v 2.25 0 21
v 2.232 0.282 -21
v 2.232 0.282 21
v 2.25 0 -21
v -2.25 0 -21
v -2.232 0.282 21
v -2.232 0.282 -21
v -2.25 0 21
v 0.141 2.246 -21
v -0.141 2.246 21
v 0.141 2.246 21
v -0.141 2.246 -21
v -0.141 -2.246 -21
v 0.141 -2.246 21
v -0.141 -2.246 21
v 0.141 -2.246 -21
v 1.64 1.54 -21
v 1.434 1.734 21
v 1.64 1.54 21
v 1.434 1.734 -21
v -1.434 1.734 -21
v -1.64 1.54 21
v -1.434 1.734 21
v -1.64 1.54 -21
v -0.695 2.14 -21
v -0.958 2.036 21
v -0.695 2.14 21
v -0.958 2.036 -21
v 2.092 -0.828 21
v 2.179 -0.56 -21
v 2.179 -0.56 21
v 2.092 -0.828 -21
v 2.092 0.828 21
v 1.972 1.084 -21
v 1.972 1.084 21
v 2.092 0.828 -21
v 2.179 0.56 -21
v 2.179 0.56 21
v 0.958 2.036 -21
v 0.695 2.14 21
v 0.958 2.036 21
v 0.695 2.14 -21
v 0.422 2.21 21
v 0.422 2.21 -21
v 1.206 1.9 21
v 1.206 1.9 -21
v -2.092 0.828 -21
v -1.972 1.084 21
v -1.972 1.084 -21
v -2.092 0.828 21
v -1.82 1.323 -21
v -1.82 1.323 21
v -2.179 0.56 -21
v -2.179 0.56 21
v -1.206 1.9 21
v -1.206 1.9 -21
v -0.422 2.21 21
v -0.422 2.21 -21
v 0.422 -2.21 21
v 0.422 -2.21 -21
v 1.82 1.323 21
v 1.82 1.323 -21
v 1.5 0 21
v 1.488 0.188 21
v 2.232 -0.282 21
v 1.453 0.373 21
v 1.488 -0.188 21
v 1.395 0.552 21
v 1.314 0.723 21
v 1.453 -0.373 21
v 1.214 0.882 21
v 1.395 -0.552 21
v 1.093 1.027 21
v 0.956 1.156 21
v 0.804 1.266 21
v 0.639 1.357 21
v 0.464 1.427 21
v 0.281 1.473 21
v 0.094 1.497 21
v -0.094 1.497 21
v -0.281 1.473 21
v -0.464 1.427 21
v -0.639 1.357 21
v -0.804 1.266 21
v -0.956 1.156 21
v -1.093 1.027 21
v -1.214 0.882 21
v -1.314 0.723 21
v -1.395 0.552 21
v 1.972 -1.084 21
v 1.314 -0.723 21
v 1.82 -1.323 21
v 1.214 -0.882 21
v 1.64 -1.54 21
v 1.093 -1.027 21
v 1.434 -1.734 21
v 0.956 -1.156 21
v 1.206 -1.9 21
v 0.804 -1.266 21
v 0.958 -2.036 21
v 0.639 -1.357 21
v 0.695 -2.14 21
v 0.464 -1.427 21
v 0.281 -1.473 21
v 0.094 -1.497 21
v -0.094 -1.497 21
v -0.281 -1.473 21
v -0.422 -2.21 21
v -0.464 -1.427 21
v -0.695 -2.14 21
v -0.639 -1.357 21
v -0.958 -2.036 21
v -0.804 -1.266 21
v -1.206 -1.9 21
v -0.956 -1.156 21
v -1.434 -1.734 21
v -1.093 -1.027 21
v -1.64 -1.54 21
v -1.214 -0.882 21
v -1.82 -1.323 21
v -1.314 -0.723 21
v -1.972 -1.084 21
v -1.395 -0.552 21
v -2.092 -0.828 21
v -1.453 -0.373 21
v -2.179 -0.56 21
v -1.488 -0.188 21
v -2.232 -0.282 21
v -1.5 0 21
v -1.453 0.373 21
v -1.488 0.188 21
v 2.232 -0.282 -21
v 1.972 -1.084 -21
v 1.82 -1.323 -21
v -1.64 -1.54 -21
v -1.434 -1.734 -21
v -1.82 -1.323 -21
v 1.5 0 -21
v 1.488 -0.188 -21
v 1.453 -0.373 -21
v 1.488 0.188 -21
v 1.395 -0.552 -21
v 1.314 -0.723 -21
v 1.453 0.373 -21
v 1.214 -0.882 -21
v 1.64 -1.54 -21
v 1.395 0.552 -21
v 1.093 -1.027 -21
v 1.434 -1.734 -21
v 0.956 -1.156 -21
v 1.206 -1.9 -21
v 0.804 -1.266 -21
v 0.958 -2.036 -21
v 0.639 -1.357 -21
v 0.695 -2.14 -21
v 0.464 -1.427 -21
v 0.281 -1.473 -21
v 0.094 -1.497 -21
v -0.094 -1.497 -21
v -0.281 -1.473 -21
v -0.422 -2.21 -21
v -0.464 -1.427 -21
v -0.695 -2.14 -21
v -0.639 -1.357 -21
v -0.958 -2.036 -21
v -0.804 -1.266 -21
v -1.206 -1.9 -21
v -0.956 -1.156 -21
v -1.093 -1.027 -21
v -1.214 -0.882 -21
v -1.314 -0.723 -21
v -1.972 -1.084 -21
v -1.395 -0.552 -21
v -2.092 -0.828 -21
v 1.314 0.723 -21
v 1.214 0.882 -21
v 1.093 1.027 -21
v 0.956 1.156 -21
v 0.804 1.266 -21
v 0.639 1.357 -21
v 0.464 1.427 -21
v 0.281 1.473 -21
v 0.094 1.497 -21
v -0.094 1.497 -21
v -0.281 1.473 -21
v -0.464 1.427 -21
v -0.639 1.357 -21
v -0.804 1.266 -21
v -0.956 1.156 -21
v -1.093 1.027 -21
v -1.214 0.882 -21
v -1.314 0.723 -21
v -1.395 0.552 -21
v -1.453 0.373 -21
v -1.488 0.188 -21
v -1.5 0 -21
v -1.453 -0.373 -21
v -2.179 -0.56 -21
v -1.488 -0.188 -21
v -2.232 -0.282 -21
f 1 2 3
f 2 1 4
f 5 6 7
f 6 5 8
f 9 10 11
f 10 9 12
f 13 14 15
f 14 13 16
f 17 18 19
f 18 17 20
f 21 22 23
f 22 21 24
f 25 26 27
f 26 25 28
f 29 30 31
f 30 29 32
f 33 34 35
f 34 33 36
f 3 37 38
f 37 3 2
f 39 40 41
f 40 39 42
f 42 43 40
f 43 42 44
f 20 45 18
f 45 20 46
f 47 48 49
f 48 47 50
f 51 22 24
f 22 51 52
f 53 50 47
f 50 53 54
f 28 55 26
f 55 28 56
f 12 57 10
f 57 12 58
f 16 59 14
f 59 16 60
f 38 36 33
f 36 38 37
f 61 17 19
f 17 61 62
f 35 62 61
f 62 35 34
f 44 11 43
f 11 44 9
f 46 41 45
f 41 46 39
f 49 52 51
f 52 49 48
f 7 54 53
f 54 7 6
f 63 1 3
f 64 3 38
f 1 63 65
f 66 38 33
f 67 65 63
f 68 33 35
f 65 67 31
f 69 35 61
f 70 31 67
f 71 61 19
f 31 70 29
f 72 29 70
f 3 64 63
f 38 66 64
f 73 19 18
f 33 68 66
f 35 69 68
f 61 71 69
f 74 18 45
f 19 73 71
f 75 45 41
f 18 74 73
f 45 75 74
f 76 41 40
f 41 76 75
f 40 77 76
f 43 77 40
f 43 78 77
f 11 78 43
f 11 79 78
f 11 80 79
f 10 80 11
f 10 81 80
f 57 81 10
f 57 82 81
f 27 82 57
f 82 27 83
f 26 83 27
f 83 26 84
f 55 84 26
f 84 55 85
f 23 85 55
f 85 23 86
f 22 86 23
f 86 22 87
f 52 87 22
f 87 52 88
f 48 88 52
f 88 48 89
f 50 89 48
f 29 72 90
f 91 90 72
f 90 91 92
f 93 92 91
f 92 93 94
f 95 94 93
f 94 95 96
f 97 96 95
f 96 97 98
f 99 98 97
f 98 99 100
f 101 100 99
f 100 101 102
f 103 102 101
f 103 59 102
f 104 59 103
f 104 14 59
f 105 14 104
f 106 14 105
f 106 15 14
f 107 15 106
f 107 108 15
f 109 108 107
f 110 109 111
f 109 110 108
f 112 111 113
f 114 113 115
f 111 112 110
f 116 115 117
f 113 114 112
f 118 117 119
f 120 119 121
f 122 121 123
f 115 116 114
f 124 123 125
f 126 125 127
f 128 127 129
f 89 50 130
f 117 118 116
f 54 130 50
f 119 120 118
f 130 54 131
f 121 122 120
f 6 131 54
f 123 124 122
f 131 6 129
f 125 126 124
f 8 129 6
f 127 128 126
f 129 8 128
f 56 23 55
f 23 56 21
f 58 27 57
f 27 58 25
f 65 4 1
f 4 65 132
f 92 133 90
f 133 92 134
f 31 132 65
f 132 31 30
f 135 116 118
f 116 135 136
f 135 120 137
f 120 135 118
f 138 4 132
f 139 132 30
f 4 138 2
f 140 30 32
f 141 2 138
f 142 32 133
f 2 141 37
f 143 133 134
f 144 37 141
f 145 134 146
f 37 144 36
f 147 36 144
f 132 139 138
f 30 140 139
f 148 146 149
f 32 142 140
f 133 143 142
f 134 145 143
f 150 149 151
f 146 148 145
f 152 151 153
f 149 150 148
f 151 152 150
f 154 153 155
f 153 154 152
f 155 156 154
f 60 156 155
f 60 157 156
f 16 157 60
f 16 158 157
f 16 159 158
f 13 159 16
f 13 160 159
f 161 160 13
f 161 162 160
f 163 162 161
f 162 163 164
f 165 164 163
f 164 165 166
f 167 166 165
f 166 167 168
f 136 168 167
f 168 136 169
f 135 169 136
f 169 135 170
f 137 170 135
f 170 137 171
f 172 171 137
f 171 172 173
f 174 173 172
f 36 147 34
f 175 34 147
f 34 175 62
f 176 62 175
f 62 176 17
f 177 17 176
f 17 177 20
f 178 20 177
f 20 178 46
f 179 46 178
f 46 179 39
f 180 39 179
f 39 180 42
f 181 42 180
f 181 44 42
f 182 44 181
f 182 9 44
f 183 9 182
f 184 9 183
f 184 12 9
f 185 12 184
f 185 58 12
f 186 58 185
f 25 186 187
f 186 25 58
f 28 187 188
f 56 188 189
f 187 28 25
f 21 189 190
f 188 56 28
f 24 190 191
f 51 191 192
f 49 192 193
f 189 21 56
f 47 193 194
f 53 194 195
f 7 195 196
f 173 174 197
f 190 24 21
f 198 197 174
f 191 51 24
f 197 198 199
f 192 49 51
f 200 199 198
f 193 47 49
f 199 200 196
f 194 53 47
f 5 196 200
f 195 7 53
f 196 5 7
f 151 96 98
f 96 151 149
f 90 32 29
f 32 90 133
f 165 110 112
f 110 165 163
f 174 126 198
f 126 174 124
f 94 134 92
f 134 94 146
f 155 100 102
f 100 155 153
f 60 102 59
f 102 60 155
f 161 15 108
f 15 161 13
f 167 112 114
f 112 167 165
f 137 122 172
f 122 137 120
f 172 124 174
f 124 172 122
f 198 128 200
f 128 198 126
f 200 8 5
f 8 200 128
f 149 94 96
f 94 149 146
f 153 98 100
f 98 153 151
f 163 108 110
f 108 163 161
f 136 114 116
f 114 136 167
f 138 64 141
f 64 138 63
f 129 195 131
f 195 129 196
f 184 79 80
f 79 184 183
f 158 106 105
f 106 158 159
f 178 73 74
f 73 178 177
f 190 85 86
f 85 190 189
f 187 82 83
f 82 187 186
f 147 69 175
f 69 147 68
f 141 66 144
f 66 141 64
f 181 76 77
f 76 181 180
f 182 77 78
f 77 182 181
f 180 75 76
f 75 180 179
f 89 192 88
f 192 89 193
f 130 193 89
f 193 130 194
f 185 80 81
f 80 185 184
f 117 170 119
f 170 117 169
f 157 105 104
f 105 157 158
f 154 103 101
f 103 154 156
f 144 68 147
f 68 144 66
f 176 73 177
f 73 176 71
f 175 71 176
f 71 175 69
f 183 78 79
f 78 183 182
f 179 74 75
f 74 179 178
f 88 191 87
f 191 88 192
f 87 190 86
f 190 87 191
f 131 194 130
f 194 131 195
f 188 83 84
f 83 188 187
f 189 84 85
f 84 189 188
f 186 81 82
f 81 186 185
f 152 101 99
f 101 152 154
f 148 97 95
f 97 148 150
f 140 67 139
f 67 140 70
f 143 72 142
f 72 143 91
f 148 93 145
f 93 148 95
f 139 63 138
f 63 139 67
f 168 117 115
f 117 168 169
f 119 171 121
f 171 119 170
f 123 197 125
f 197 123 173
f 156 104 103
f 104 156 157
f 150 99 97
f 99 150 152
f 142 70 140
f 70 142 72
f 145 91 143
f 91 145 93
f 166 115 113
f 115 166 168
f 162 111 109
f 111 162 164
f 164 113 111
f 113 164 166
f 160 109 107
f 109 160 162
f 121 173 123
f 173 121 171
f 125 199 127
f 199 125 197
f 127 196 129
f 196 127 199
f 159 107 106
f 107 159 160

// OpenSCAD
$fn = 50;


difference() {
	union() {
		translate(v = [0, 0, -21.0000000000]) {
			cylinder(h = 42, r = 2.2500000000);
		}
	}
	union() {
		translate(v = [0, 0, -100.0000000000]) {
			cylinder(h = 200, r = 1.5000000000);
		}
	}
}
